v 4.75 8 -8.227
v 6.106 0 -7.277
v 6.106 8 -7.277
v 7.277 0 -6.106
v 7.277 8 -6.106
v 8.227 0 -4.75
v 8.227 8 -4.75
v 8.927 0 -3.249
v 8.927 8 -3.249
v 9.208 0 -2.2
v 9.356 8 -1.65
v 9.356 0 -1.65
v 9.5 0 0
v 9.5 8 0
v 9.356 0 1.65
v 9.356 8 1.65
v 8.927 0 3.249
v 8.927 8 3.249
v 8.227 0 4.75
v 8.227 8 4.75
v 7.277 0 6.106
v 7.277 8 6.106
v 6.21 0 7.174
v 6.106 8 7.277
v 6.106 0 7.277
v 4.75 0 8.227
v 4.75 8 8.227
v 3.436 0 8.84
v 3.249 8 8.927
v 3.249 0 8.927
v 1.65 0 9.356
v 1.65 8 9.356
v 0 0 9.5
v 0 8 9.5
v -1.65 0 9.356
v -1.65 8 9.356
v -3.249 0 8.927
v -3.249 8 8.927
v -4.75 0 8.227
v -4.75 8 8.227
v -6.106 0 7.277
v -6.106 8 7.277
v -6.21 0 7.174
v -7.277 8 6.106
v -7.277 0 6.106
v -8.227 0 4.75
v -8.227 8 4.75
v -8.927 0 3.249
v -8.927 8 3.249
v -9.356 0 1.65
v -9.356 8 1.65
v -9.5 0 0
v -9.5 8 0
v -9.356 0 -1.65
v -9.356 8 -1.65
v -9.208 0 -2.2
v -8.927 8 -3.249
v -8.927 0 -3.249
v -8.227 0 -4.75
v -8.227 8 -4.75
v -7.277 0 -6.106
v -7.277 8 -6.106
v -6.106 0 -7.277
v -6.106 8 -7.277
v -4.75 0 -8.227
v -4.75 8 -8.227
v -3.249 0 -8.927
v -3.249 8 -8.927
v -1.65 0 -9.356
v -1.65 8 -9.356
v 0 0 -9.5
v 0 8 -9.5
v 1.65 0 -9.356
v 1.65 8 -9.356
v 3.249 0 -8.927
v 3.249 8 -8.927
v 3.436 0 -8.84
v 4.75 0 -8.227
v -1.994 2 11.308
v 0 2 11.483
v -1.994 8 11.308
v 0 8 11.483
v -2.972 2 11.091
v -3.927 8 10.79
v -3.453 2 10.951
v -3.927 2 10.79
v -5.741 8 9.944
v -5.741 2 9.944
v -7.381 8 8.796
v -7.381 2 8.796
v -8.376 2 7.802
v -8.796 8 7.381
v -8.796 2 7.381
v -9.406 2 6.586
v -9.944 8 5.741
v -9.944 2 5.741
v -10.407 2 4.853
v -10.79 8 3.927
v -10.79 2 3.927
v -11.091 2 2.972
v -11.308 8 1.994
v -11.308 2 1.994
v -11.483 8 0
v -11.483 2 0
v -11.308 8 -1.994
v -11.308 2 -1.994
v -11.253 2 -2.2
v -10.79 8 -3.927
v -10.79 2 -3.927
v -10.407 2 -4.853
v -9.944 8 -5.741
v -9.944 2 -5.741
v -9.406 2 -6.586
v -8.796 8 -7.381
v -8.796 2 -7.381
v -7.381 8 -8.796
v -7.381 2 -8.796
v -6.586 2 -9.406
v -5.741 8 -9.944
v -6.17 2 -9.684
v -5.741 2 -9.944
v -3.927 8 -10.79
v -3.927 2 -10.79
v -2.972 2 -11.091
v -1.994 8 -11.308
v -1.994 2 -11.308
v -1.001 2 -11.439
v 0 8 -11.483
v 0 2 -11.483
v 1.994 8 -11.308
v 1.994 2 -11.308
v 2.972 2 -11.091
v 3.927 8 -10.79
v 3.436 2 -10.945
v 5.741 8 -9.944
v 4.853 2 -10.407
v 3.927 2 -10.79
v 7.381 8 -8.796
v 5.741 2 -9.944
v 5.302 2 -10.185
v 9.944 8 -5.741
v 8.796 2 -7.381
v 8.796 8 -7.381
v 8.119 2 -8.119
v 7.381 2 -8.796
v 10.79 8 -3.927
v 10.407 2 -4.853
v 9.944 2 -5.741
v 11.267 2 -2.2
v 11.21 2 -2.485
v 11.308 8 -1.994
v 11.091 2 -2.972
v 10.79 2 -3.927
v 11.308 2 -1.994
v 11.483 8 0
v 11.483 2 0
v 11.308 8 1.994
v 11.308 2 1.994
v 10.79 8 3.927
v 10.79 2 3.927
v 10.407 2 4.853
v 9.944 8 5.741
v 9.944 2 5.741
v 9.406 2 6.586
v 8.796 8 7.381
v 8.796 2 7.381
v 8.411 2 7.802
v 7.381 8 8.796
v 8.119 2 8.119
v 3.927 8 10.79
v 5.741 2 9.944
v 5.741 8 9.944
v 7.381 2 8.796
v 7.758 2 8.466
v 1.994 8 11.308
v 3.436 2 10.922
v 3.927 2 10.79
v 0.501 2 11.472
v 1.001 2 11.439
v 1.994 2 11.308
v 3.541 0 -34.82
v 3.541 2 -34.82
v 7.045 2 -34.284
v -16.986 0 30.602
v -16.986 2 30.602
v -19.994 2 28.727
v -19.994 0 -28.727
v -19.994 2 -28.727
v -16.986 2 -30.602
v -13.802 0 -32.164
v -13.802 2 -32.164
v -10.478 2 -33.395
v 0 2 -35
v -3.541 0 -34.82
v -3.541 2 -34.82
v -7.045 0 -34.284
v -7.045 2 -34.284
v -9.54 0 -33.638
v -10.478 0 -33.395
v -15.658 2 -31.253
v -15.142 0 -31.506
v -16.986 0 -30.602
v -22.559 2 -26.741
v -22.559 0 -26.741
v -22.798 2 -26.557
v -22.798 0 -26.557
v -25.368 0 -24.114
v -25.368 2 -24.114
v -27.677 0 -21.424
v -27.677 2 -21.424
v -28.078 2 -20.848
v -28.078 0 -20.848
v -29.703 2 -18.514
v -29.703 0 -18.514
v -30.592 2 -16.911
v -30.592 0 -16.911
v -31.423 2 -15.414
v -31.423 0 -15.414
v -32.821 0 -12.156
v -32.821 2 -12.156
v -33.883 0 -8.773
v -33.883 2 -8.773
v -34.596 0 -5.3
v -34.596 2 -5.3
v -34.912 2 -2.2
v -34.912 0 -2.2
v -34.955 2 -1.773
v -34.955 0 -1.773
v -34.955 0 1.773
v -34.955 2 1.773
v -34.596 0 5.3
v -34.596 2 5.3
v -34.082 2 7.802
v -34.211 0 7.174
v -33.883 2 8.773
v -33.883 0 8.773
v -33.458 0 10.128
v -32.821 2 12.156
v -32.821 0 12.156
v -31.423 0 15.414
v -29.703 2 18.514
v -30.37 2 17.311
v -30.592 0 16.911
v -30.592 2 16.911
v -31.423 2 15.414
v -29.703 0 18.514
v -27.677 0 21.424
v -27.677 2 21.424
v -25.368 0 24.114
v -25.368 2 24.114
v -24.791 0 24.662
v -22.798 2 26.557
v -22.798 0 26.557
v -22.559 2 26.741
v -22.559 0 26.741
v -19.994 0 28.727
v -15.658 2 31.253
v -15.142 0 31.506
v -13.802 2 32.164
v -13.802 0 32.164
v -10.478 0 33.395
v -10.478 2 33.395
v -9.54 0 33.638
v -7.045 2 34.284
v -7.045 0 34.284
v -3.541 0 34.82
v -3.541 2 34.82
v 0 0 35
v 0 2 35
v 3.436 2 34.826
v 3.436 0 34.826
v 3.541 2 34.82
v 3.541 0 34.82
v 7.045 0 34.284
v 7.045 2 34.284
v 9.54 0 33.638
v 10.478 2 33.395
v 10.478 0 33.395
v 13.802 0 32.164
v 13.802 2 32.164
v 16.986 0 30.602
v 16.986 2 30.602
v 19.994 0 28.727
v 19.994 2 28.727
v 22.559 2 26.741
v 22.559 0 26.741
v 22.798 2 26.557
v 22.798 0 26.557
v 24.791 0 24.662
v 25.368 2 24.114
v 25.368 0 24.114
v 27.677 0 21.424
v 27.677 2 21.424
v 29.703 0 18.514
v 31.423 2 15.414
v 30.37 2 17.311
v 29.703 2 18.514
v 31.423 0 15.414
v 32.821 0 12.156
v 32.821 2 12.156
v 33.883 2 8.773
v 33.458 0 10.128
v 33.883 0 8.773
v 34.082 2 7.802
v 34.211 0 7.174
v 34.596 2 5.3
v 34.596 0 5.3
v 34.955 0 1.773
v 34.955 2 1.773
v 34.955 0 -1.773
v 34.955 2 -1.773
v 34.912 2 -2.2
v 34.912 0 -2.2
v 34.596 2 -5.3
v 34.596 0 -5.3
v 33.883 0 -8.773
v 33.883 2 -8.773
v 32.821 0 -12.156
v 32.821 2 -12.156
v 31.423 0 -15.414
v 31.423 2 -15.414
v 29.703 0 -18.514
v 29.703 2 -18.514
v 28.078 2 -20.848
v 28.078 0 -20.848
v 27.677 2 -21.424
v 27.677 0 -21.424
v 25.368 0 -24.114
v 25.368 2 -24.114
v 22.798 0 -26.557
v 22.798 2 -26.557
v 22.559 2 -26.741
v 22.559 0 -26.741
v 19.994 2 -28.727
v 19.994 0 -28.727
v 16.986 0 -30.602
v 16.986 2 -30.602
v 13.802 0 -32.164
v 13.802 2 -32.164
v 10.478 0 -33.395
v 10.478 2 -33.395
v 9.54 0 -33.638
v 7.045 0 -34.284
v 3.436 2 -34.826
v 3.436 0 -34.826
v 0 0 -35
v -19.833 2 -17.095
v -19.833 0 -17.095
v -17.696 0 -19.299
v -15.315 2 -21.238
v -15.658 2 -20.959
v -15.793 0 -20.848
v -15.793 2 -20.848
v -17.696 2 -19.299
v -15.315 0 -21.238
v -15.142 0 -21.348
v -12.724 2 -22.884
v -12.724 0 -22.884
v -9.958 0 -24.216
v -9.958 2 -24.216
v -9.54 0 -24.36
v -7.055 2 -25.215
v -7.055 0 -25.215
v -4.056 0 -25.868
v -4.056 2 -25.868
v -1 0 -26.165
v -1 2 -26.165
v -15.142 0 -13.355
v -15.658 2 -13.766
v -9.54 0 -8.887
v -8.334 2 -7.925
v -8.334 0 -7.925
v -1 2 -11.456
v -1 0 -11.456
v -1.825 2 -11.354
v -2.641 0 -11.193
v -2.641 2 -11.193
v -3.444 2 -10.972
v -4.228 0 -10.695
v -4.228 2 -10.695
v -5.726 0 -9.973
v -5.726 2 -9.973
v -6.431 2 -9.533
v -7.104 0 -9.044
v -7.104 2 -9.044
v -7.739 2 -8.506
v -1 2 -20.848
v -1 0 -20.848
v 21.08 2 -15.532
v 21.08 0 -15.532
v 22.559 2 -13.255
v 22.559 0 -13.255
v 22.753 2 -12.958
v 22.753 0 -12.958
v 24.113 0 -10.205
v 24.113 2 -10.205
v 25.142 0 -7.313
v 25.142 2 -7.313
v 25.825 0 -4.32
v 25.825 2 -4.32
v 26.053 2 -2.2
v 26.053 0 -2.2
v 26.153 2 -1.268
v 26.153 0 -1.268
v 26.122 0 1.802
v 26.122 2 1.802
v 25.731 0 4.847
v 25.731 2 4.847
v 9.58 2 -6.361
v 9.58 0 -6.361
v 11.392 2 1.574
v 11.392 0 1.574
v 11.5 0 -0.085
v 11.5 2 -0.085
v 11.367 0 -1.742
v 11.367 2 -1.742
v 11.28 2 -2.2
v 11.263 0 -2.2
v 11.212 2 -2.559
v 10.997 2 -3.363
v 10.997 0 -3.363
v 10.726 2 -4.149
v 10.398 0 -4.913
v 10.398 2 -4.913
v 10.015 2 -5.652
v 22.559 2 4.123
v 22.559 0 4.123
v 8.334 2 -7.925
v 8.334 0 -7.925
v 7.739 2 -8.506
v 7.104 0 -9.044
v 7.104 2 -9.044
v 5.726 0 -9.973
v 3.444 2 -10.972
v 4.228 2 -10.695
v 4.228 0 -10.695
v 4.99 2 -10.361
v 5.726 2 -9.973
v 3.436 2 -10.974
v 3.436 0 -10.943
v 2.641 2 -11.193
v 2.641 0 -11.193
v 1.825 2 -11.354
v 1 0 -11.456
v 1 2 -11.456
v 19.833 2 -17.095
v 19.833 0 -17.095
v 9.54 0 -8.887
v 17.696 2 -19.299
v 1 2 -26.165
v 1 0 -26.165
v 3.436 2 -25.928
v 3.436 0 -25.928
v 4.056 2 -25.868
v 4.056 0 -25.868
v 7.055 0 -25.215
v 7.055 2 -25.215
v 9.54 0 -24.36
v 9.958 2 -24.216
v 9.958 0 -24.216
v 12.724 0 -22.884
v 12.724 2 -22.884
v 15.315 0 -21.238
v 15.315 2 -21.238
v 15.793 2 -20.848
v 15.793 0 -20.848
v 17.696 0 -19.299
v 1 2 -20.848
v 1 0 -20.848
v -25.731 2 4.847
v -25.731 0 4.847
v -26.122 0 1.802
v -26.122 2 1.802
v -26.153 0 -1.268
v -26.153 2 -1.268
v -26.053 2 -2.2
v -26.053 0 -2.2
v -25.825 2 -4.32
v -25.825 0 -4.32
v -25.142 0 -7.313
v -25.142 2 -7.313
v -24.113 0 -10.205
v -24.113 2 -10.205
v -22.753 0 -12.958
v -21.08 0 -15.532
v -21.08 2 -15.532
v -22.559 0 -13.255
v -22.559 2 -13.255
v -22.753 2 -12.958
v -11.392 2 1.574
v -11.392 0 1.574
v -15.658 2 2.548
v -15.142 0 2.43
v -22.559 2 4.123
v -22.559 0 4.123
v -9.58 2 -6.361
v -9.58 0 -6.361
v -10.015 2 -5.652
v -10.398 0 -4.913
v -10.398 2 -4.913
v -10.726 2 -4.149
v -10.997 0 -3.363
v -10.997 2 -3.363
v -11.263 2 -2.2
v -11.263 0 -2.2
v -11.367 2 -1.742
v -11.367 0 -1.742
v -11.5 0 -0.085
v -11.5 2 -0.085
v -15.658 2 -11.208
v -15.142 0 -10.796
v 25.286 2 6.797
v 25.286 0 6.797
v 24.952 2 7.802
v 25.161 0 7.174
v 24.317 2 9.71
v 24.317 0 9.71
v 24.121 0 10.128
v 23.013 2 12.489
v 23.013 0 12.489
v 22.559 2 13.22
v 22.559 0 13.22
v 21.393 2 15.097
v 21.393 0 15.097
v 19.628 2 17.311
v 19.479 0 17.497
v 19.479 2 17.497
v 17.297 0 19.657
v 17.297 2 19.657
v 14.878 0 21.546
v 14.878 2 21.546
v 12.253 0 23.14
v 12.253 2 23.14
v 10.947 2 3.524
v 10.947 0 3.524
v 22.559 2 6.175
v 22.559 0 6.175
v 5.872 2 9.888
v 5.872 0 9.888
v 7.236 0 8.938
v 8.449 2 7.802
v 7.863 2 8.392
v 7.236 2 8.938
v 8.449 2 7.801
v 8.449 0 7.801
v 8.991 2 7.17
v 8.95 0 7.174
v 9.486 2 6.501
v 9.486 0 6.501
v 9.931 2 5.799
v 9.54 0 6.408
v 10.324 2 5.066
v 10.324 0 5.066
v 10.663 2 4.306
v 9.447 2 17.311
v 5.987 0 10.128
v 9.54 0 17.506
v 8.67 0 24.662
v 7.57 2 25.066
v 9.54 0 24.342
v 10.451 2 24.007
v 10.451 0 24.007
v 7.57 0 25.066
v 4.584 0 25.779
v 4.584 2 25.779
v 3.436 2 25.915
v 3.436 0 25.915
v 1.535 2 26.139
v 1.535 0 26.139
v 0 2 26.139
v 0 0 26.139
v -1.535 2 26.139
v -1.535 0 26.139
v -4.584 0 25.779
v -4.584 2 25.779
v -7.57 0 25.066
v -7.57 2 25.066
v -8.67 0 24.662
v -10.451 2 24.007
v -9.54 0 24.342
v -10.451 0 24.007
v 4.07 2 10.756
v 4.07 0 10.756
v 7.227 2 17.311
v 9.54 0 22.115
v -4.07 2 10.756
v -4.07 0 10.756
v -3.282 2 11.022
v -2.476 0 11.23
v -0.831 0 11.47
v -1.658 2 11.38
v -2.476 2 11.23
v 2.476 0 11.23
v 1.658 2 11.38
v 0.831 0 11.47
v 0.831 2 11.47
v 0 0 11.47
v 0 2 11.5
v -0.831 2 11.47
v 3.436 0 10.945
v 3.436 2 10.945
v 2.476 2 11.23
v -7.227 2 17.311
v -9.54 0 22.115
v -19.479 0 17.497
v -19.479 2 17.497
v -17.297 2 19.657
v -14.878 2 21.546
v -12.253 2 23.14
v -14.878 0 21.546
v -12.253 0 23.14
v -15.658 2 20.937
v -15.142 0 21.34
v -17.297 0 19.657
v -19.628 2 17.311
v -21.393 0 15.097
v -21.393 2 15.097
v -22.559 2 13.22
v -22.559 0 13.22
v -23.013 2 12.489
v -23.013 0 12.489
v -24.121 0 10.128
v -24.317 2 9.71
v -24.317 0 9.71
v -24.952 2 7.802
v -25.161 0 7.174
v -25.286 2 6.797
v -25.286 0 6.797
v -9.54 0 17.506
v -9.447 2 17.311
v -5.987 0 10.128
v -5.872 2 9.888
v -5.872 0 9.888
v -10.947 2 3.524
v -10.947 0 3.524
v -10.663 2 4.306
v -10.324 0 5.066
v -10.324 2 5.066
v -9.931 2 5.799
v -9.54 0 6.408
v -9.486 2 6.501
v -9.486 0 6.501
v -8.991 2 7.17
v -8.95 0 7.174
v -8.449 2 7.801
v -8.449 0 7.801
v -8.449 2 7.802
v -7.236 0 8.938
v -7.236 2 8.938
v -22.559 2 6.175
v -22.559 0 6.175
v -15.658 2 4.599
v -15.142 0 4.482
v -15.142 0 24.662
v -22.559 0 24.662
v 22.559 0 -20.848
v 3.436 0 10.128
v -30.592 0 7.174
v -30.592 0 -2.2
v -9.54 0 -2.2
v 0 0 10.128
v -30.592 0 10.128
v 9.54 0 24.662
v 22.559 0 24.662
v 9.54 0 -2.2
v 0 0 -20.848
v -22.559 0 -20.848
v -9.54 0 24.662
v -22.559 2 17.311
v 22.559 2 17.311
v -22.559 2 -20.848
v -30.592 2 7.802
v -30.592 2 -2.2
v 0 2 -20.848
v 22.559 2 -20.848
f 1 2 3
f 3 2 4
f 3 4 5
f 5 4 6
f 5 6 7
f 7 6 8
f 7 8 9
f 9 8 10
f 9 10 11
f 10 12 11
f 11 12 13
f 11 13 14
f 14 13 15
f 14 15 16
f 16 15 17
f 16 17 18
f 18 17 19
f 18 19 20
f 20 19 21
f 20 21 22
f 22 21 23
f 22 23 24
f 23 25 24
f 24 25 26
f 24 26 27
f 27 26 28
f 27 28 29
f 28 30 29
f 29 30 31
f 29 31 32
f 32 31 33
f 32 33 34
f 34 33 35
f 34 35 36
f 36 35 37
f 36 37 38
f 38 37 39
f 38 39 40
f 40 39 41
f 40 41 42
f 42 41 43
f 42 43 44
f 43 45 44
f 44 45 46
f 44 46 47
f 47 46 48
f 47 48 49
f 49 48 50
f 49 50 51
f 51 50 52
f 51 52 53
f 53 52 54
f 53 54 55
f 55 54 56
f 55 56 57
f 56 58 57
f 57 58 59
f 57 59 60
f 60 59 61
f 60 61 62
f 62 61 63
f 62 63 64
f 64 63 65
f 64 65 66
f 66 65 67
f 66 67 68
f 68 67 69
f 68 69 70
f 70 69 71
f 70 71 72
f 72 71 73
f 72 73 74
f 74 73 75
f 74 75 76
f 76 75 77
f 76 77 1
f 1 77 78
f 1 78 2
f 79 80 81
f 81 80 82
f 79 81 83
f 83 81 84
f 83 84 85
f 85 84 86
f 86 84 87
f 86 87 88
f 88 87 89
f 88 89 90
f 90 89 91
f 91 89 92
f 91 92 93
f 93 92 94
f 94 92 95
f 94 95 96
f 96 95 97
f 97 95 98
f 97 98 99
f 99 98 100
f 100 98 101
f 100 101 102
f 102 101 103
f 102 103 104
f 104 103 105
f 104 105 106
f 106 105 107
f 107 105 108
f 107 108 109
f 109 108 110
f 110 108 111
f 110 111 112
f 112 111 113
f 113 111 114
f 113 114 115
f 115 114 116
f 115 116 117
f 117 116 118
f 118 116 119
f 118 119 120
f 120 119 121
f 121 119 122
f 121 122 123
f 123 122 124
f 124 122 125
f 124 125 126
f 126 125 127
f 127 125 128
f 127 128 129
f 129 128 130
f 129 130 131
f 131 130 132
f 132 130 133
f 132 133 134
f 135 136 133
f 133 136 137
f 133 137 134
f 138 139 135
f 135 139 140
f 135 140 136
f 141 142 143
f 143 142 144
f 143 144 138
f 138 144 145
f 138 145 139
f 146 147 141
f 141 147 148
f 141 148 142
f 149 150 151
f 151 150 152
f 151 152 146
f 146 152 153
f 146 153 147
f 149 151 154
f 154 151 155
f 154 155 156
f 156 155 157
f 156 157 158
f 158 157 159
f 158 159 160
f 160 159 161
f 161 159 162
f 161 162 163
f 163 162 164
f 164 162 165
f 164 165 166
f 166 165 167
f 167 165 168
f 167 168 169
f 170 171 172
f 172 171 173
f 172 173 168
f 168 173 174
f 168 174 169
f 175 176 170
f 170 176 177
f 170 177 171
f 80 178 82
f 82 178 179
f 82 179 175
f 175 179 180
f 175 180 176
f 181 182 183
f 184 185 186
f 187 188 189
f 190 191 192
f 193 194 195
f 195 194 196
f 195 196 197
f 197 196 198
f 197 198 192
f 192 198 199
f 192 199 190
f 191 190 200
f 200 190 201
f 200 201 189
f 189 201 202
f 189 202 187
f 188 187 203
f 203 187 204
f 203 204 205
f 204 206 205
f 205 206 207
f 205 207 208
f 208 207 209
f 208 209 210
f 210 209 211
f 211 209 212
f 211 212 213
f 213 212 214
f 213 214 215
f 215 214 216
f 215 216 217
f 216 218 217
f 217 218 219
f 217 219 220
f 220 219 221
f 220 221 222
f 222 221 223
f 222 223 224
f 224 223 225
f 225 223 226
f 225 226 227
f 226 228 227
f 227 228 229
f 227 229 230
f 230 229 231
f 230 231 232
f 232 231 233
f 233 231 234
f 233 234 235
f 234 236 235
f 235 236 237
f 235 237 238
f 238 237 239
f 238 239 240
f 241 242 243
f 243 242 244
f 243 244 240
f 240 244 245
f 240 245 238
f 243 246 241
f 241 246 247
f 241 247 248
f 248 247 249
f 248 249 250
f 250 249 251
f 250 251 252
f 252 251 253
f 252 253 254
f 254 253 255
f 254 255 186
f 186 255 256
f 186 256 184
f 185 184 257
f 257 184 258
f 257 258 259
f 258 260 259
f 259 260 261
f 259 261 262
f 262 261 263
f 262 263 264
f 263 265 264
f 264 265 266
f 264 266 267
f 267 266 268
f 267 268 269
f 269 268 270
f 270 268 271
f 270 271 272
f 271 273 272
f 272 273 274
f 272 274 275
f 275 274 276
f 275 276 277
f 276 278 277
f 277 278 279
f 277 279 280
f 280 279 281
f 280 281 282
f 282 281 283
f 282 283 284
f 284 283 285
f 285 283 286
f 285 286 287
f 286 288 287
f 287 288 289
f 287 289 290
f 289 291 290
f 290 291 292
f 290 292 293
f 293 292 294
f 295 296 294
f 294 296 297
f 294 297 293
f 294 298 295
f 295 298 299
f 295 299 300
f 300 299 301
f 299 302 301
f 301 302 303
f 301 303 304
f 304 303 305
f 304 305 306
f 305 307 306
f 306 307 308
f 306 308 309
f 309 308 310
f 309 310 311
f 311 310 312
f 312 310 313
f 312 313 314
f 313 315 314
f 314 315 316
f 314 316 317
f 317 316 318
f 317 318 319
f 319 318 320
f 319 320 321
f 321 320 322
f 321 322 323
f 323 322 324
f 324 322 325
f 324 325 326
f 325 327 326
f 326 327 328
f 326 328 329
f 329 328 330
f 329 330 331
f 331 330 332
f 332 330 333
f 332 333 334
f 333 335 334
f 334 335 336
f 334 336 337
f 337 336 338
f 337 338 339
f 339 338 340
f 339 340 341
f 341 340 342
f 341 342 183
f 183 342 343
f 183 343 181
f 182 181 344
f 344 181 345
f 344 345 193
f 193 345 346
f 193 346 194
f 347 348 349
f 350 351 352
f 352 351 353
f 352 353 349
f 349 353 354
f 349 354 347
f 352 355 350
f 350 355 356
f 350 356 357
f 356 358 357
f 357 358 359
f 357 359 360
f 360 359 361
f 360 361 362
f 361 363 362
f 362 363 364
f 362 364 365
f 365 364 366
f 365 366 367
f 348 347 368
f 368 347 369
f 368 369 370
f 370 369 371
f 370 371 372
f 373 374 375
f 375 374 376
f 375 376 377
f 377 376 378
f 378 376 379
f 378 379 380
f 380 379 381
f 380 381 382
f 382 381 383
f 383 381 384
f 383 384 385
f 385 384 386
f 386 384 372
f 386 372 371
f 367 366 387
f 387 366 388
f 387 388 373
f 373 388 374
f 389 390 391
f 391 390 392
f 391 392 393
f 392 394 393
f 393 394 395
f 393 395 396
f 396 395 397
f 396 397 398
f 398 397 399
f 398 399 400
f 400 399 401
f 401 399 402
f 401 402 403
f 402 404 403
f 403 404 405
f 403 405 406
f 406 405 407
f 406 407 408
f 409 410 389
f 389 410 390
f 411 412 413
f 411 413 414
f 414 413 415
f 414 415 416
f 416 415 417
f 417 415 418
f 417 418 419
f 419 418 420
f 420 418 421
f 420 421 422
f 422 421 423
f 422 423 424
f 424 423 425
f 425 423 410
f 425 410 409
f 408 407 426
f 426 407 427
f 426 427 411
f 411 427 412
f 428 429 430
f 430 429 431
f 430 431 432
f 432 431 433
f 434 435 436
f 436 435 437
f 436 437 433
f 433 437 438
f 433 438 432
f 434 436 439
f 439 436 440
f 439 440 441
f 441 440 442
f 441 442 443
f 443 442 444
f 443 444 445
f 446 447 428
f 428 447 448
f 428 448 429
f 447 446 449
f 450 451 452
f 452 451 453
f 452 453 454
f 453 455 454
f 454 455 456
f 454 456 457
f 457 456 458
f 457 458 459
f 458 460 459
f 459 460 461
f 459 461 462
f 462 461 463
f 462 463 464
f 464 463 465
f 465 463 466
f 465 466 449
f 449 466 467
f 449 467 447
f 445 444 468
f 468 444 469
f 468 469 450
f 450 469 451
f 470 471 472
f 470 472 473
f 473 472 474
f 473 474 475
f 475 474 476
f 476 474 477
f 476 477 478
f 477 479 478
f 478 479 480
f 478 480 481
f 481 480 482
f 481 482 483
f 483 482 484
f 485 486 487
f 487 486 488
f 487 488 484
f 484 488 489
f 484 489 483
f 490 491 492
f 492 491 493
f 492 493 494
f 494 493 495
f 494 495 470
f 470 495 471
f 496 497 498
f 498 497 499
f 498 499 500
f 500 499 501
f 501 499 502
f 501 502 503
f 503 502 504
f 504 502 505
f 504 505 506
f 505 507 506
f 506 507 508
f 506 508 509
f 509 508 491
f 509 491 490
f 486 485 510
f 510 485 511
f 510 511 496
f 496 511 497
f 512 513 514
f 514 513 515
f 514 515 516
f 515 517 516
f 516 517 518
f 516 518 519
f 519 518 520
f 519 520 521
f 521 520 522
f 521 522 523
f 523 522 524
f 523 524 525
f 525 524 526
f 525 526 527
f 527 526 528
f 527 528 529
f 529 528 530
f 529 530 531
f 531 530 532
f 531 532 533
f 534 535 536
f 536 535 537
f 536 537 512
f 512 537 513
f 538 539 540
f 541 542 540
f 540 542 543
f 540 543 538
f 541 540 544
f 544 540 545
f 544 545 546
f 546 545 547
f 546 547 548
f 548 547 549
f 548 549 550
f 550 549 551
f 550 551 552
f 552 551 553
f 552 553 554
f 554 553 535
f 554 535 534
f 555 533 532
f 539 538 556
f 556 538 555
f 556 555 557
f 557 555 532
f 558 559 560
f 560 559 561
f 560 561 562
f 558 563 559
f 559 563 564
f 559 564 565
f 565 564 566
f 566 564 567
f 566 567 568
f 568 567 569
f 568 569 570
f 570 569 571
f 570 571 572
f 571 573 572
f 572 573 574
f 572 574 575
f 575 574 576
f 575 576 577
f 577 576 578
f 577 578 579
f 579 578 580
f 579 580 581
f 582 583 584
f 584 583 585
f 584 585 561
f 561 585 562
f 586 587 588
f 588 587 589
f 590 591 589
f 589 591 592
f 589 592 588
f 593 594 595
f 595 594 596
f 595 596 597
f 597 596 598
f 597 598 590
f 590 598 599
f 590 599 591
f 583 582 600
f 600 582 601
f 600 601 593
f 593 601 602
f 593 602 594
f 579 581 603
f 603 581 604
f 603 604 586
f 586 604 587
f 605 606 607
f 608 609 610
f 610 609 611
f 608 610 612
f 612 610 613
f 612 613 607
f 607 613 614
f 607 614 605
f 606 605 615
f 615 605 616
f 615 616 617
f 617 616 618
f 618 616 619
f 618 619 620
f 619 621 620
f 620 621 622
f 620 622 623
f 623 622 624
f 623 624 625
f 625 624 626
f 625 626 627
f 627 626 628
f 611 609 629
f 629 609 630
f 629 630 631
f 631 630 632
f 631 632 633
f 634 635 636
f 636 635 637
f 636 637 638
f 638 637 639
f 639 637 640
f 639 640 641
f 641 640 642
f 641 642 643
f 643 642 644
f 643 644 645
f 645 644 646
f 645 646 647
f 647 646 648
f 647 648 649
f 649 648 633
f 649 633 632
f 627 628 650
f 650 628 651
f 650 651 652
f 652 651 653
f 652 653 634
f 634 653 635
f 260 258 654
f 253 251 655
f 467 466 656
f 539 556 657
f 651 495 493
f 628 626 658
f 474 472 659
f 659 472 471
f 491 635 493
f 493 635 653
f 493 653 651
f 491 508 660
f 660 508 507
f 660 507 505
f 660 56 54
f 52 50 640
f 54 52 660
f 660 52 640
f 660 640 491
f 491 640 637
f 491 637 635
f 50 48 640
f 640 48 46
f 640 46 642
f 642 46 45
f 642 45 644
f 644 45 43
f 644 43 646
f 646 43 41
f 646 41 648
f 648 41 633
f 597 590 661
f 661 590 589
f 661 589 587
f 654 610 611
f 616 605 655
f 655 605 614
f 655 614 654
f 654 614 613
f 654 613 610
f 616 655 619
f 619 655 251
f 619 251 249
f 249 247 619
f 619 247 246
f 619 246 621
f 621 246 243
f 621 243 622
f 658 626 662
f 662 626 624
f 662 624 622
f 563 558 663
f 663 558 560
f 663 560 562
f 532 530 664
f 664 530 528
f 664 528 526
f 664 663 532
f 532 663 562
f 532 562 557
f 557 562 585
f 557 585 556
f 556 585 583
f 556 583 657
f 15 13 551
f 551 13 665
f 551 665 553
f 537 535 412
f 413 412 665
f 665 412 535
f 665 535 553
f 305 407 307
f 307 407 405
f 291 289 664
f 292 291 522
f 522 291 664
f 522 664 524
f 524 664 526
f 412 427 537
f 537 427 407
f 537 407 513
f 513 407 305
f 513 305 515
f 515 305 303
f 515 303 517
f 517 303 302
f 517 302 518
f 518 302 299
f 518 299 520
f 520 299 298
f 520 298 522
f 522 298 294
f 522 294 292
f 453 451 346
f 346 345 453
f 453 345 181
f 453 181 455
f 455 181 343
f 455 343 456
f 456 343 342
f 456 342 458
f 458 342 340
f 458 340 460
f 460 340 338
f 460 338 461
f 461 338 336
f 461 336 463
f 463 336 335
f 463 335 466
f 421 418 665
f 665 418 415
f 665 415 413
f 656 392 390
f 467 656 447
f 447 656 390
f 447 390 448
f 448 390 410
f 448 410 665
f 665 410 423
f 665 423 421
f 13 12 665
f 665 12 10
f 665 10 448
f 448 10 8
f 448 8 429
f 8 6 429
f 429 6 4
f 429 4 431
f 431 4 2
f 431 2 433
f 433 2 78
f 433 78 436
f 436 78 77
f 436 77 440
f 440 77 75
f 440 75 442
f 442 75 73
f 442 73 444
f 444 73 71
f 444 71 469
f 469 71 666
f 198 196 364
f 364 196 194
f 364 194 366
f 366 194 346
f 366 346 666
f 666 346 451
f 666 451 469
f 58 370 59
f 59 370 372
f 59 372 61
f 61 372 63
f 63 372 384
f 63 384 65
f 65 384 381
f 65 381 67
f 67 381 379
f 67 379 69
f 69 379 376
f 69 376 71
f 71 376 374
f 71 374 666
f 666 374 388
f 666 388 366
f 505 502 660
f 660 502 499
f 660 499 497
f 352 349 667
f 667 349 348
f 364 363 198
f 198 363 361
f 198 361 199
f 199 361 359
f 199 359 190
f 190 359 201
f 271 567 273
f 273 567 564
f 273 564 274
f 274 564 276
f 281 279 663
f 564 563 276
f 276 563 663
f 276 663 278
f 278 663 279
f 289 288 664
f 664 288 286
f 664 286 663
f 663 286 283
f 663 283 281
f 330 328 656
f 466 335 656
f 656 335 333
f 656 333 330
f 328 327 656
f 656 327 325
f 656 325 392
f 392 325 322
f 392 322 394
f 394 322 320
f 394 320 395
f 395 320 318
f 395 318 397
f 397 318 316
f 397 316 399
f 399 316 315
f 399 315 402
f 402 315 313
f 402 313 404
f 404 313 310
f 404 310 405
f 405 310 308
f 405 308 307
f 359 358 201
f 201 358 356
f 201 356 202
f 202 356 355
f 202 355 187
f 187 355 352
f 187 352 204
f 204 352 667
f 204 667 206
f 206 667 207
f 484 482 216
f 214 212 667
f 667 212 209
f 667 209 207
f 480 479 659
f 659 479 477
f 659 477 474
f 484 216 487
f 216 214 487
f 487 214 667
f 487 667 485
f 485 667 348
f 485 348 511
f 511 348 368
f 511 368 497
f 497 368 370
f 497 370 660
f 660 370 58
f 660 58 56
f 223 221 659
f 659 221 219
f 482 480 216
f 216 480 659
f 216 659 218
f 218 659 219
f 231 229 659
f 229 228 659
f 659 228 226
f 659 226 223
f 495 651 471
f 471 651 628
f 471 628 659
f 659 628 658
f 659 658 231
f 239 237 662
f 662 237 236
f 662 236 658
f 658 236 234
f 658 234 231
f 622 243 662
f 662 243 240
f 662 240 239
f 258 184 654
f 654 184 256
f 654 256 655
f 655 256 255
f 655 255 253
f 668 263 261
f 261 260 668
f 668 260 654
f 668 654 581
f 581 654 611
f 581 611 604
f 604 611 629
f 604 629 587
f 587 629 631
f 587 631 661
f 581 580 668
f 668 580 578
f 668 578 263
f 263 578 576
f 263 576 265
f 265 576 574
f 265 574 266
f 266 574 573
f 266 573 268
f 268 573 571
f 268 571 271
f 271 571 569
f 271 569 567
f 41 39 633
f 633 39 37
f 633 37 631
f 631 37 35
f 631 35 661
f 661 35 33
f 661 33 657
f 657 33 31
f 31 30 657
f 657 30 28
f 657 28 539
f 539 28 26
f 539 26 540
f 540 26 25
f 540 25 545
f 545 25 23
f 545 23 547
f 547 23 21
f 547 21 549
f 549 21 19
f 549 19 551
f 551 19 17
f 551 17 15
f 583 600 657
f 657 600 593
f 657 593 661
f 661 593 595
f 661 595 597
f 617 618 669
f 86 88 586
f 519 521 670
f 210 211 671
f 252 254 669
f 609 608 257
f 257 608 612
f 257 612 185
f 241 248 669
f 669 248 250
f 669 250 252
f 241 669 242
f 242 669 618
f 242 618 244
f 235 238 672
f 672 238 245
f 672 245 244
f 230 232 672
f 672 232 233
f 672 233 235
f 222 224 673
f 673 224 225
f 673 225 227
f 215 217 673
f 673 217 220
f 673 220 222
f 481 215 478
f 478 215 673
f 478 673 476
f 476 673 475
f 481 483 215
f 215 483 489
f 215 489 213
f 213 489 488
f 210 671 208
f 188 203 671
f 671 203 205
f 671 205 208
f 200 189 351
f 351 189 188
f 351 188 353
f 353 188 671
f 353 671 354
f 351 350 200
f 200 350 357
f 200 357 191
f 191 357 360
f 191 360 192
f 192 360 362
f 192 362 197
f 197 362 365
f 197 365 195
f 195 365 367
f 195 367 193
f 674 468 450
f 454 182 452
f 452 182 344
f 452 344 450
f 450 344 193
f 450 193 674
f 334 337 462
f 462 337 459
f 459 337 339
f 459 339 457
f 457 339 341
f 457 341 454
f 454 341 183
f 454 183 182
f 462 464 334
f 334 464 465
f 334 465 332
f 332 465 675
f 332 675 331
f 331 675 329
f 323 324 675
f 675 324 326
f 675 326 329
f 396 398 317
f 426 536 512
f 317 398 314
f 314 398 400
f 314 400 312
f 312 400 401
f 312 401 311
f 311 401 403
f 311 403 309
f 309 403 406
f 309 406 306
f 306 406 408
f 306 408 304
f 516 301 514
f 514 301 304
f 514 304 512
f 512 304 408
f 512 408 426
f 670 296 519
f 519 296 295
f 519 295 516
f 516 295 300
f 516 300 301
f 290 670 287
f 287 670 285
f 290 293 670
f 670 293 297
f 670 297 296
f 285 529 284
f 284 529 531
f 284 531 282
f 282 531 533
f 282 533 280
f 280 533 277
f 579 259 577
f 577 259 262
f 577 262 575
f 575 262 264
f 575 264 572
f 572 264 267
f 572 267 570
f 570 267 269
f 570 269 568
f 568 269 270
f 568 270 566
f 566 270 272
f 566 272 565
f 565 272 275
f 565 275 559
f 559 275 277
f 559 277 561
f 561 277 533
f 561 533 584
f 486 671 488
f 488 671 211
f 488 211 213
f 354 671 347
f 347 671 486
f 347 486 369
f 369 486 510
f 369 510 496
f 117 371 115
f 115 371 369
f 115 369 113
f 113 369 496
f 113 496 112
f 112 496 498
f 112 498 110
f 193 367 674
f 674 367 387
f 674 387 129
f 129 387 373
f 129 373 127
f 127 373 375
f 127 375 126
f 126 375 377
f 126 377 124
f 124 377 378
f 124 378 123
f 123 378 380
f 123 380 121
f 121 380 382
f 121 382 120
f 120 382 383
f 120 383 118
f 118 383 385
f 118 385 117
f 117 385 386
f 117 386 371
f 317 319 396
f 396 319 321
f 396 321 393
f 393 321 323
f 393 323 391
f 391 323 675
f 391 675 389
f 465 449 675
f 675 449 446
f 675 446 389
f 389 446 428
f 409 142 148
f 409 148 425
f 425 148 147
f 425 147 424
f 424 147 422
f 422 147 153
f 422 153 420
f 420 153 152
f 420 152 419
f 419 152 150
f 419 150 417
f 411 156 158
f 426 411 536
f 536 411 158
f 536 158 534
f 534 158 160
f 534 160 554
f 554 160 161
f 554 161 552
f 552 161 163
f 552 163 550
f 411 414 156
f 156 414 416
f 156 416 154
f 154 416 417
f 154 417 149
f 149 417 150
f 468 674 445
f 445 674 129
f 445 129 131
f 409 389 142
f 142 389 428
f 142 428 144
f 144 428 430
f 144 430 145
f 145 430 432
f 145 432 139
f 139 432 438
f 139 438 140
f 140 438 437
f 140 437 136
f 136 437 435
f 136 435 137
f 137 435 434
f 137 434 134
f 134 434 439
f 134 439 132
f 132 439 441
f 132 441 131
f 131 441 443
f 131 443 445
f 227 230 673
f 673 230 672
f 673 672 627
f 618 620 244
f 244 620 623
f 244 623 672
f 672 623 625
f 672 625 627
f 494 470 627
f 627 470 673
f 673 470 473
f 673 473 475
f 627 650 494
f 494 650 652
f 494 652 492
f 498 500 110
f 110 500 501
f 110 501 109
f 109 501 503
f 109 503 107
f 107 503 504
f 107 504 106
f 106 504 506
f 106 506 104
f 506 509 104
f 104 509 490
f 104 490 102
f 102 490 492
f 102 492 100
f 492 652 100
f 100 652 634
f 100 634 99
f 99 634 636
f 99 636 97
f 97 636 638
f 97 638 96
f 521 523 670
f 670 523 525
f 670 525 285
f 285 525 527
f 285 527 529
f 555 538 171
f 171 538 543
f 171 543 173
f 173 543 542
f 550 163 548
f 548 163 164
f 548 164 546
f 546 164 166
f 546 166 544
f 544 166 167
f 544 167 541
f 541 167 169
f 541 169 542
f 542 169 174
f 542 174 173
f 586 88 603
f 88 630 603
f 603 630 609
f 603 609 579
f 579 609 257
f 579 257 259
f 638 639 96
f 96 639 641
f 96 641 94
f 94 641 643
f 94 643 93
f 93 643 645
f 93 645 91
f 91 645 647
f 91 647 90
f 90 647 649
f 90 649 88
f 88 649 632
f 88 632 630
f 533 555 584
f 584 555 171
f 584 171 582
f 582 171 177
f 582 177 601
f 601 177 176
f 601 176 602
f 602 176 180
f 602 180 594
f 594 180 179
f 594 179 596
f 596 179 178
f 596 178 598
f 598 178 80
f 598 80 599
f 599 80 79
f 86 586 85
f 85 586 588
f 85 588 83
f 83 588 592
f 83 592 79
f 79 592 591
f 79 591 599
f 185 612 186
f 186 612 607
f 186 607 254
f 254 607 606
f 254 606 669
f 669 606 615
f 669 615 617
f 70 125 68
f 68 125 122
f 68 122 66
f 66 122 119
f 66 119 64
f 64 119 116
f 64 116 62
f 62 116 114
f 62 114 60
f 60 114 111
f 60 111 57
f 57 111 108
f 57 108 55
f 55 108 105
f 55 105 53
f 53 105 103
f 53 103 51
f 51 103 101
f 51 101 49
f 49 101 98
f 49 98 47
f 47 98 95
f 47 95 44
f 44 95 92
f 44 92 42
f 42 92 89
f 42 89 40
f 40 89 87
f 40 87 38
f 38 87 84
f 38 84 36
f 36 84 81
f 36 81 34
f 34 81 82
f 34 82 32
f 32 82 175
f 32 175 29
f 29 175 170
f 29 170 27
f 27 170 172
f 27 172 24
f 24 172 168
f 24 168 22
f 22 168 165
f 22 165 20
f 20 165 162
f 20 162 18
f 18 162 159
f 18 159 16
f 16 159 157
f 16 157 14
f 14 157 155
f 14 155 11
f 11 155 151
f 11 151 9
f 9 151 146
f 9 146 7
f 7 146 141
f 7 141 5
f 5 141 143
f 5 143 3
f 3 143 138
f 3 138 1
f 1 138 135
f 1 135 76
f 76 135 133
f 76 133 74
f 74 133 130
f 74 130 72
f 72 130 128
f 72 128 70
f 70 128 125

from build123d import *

# Parameters (mm, degrees)
SKETCH_1_R          = 35
SKETCH_1_R_2        = 9.5
EXTRUDE_1_DEPTH     = 18
SKETCH_2_R          = 40.856384021
SKETCH_2_R_2        = 11.482609949
CUT_EXTRUDE_1_DEPTH = 16
SKETCH_3_R          = 16.811419883
CUT_EXTRUDE_2_DEPTH = 10


with BuildPart() as part:
    # 草图1 → 凸台-拉伸1 (new body)
    with BuildSketch(Plane(origin=(0, 0, 0), x_dir=(1, 0, 0), z_dir=(0, 1, 0))):
        Circle(SKETCH_1_R)
        Circle(SKETCH_1_R_2, mode=Mode.SUBTRACT)
        with BuildLine():
            Line((19.832862473, 17.095228055), (8.333515071, 7.924804513))
            ThreePointArc((8.333515071, 7.924804513), (4.989663, 10.361141981), (1, 11.456439237))
            Line((1, 11.456439237), (1, 26.164656621))
            ThreePointArc((1, 26.164656621), (11.360707431, 23.59075206), (19.832862473, 17.095228055))
        make_face(mode=Mode.SUBTRACT)
        with BuildLine():
            Line((-1, 26.164656621), (-1, 11.456439237))
            ThreePointArc((-1, 11.456439237), (-4.989663, 10.361141981), (-8.333515071, 7.924804513))
            Line((-8.333515071, 7.924804513), (-19.832862473, 17.095228055))
            ThreePointArc((-19.832862473, 17.095228055), (-11.360707431, 23.59075206), (-1, 26.164656621))
        make_face(mode=Mode.SUBTRACT)
        with BuildLine():
            Line((21.079842076, 15.53156509), (9.580494675, 6.361141548))
            ThreePointArc((9.580494675, 6.361141548), (11.21167099, 2.55899074), (11.391723321, -1.574369647))
            Line((11.391723321, -1.574369647), (25.731174987, -4.847255916))
            ThreePointArc((25.731174987, -4.847255916), (25.527277881, 5.826434595), (21.079842076, 15.53156509))
        make_face(mode=Mode.SUBTRACT)
        with BuildLine():
            Line((25.286133119, -6.79711174), (10.946681453, -3.524225471))
            ThreePointArc((10.946681453, -3.524225471), (8.991062048, -7.170132721), (5.871731561, -9.888011351))
            Line((5.871731561, -9.888011351), (12.253387915, -23.139657316))
            ThreePointArc((12.253387915, -23.139657316), (20.471287425, -16.325306958), (25.286133119, -6.79711174))
        make_face(mode=Mode.SUBTRACT)
        with BuildLine():
            Line((10.45145018, -24.007424794), (4.069793825, -10.755778829))
            ThreePointArc((4.069793825, -10.755778829), (0, -11.5), (-4.069793825, -10.755778829))
            Line((-4.069793825, -10.755778829), (-10.45145018, -24.007424794))
            ThreePointArc((-10.45145018, -24.007424794), (0, -26.183759396), (10.45145018, -24.007424794))
        make_face(mode=Mode.SUBTRACT)
        with BuildLine():
            Line((-12.253387915, -23.139657316), (-5.871731561, -9.888011351))
            ThreePointArc((-5.871731561, -9.888011351), (-8.991062048, -7.170132721), (-10.946681453, -3.524225471))
            Line((-10.946681453, -3.524225471), (-25.286133119, -6.79711174))
            ThreePointArc((-25.286133119, -6.79711174), (-20.471287425, -16.325306958), (-12.253387915, -23.139657316))
        make_face(mode=Mode.SUBTRACT)
        with BuildLine():
            Line((-25.731174987, -4.847255916), (-11.391723321, -1.574369647))
            ThreePointArc((-11.391723321, -1.574369647), (-11.21167099, 2.55899074), (-9.580494675, 6.361141548))
            Line((-9.580494675, 6.361141548), (-21.079842076, 15.53156509))
            ThreePointArc((-21.079842076, 15.53156509), (-25.527277881, 5.826434595), (-25.731174987, -4.847255916))
        make_face(mode=Mode.SUBTRACT)
    extrude(amount=EXTRUDE_1_DEPTH)

    # 草图2 → 切除-拉伸1 (cut)
    with BuildSketch(Plane(origin=(0, 18, 0), x_dir=(1, 0, 0), z_dir=(0, 1, 0))):
        Circle(SKETCH_2_R)
        Circle(SKETCH_2_R_2, mode=Mode.SUBTRACT)
    extrude(amount=-CUT_EXTRUDE_1_DEPTH, mode=Mode.SUBTRACT)

    # 草图3 → 切除-拉伸2 (cut)
    with BuildSketch(Plane(origin=(0, 18, 0), x_dir=(1, 0, 0), z_dir=(0, 1, 0))):
        Circle(SKETCH_3_R)
    extrude(amount=-CUT_EXTRUDE_2_DEPTH, mode=Mode.SUBTRACT)


solid = part.part
